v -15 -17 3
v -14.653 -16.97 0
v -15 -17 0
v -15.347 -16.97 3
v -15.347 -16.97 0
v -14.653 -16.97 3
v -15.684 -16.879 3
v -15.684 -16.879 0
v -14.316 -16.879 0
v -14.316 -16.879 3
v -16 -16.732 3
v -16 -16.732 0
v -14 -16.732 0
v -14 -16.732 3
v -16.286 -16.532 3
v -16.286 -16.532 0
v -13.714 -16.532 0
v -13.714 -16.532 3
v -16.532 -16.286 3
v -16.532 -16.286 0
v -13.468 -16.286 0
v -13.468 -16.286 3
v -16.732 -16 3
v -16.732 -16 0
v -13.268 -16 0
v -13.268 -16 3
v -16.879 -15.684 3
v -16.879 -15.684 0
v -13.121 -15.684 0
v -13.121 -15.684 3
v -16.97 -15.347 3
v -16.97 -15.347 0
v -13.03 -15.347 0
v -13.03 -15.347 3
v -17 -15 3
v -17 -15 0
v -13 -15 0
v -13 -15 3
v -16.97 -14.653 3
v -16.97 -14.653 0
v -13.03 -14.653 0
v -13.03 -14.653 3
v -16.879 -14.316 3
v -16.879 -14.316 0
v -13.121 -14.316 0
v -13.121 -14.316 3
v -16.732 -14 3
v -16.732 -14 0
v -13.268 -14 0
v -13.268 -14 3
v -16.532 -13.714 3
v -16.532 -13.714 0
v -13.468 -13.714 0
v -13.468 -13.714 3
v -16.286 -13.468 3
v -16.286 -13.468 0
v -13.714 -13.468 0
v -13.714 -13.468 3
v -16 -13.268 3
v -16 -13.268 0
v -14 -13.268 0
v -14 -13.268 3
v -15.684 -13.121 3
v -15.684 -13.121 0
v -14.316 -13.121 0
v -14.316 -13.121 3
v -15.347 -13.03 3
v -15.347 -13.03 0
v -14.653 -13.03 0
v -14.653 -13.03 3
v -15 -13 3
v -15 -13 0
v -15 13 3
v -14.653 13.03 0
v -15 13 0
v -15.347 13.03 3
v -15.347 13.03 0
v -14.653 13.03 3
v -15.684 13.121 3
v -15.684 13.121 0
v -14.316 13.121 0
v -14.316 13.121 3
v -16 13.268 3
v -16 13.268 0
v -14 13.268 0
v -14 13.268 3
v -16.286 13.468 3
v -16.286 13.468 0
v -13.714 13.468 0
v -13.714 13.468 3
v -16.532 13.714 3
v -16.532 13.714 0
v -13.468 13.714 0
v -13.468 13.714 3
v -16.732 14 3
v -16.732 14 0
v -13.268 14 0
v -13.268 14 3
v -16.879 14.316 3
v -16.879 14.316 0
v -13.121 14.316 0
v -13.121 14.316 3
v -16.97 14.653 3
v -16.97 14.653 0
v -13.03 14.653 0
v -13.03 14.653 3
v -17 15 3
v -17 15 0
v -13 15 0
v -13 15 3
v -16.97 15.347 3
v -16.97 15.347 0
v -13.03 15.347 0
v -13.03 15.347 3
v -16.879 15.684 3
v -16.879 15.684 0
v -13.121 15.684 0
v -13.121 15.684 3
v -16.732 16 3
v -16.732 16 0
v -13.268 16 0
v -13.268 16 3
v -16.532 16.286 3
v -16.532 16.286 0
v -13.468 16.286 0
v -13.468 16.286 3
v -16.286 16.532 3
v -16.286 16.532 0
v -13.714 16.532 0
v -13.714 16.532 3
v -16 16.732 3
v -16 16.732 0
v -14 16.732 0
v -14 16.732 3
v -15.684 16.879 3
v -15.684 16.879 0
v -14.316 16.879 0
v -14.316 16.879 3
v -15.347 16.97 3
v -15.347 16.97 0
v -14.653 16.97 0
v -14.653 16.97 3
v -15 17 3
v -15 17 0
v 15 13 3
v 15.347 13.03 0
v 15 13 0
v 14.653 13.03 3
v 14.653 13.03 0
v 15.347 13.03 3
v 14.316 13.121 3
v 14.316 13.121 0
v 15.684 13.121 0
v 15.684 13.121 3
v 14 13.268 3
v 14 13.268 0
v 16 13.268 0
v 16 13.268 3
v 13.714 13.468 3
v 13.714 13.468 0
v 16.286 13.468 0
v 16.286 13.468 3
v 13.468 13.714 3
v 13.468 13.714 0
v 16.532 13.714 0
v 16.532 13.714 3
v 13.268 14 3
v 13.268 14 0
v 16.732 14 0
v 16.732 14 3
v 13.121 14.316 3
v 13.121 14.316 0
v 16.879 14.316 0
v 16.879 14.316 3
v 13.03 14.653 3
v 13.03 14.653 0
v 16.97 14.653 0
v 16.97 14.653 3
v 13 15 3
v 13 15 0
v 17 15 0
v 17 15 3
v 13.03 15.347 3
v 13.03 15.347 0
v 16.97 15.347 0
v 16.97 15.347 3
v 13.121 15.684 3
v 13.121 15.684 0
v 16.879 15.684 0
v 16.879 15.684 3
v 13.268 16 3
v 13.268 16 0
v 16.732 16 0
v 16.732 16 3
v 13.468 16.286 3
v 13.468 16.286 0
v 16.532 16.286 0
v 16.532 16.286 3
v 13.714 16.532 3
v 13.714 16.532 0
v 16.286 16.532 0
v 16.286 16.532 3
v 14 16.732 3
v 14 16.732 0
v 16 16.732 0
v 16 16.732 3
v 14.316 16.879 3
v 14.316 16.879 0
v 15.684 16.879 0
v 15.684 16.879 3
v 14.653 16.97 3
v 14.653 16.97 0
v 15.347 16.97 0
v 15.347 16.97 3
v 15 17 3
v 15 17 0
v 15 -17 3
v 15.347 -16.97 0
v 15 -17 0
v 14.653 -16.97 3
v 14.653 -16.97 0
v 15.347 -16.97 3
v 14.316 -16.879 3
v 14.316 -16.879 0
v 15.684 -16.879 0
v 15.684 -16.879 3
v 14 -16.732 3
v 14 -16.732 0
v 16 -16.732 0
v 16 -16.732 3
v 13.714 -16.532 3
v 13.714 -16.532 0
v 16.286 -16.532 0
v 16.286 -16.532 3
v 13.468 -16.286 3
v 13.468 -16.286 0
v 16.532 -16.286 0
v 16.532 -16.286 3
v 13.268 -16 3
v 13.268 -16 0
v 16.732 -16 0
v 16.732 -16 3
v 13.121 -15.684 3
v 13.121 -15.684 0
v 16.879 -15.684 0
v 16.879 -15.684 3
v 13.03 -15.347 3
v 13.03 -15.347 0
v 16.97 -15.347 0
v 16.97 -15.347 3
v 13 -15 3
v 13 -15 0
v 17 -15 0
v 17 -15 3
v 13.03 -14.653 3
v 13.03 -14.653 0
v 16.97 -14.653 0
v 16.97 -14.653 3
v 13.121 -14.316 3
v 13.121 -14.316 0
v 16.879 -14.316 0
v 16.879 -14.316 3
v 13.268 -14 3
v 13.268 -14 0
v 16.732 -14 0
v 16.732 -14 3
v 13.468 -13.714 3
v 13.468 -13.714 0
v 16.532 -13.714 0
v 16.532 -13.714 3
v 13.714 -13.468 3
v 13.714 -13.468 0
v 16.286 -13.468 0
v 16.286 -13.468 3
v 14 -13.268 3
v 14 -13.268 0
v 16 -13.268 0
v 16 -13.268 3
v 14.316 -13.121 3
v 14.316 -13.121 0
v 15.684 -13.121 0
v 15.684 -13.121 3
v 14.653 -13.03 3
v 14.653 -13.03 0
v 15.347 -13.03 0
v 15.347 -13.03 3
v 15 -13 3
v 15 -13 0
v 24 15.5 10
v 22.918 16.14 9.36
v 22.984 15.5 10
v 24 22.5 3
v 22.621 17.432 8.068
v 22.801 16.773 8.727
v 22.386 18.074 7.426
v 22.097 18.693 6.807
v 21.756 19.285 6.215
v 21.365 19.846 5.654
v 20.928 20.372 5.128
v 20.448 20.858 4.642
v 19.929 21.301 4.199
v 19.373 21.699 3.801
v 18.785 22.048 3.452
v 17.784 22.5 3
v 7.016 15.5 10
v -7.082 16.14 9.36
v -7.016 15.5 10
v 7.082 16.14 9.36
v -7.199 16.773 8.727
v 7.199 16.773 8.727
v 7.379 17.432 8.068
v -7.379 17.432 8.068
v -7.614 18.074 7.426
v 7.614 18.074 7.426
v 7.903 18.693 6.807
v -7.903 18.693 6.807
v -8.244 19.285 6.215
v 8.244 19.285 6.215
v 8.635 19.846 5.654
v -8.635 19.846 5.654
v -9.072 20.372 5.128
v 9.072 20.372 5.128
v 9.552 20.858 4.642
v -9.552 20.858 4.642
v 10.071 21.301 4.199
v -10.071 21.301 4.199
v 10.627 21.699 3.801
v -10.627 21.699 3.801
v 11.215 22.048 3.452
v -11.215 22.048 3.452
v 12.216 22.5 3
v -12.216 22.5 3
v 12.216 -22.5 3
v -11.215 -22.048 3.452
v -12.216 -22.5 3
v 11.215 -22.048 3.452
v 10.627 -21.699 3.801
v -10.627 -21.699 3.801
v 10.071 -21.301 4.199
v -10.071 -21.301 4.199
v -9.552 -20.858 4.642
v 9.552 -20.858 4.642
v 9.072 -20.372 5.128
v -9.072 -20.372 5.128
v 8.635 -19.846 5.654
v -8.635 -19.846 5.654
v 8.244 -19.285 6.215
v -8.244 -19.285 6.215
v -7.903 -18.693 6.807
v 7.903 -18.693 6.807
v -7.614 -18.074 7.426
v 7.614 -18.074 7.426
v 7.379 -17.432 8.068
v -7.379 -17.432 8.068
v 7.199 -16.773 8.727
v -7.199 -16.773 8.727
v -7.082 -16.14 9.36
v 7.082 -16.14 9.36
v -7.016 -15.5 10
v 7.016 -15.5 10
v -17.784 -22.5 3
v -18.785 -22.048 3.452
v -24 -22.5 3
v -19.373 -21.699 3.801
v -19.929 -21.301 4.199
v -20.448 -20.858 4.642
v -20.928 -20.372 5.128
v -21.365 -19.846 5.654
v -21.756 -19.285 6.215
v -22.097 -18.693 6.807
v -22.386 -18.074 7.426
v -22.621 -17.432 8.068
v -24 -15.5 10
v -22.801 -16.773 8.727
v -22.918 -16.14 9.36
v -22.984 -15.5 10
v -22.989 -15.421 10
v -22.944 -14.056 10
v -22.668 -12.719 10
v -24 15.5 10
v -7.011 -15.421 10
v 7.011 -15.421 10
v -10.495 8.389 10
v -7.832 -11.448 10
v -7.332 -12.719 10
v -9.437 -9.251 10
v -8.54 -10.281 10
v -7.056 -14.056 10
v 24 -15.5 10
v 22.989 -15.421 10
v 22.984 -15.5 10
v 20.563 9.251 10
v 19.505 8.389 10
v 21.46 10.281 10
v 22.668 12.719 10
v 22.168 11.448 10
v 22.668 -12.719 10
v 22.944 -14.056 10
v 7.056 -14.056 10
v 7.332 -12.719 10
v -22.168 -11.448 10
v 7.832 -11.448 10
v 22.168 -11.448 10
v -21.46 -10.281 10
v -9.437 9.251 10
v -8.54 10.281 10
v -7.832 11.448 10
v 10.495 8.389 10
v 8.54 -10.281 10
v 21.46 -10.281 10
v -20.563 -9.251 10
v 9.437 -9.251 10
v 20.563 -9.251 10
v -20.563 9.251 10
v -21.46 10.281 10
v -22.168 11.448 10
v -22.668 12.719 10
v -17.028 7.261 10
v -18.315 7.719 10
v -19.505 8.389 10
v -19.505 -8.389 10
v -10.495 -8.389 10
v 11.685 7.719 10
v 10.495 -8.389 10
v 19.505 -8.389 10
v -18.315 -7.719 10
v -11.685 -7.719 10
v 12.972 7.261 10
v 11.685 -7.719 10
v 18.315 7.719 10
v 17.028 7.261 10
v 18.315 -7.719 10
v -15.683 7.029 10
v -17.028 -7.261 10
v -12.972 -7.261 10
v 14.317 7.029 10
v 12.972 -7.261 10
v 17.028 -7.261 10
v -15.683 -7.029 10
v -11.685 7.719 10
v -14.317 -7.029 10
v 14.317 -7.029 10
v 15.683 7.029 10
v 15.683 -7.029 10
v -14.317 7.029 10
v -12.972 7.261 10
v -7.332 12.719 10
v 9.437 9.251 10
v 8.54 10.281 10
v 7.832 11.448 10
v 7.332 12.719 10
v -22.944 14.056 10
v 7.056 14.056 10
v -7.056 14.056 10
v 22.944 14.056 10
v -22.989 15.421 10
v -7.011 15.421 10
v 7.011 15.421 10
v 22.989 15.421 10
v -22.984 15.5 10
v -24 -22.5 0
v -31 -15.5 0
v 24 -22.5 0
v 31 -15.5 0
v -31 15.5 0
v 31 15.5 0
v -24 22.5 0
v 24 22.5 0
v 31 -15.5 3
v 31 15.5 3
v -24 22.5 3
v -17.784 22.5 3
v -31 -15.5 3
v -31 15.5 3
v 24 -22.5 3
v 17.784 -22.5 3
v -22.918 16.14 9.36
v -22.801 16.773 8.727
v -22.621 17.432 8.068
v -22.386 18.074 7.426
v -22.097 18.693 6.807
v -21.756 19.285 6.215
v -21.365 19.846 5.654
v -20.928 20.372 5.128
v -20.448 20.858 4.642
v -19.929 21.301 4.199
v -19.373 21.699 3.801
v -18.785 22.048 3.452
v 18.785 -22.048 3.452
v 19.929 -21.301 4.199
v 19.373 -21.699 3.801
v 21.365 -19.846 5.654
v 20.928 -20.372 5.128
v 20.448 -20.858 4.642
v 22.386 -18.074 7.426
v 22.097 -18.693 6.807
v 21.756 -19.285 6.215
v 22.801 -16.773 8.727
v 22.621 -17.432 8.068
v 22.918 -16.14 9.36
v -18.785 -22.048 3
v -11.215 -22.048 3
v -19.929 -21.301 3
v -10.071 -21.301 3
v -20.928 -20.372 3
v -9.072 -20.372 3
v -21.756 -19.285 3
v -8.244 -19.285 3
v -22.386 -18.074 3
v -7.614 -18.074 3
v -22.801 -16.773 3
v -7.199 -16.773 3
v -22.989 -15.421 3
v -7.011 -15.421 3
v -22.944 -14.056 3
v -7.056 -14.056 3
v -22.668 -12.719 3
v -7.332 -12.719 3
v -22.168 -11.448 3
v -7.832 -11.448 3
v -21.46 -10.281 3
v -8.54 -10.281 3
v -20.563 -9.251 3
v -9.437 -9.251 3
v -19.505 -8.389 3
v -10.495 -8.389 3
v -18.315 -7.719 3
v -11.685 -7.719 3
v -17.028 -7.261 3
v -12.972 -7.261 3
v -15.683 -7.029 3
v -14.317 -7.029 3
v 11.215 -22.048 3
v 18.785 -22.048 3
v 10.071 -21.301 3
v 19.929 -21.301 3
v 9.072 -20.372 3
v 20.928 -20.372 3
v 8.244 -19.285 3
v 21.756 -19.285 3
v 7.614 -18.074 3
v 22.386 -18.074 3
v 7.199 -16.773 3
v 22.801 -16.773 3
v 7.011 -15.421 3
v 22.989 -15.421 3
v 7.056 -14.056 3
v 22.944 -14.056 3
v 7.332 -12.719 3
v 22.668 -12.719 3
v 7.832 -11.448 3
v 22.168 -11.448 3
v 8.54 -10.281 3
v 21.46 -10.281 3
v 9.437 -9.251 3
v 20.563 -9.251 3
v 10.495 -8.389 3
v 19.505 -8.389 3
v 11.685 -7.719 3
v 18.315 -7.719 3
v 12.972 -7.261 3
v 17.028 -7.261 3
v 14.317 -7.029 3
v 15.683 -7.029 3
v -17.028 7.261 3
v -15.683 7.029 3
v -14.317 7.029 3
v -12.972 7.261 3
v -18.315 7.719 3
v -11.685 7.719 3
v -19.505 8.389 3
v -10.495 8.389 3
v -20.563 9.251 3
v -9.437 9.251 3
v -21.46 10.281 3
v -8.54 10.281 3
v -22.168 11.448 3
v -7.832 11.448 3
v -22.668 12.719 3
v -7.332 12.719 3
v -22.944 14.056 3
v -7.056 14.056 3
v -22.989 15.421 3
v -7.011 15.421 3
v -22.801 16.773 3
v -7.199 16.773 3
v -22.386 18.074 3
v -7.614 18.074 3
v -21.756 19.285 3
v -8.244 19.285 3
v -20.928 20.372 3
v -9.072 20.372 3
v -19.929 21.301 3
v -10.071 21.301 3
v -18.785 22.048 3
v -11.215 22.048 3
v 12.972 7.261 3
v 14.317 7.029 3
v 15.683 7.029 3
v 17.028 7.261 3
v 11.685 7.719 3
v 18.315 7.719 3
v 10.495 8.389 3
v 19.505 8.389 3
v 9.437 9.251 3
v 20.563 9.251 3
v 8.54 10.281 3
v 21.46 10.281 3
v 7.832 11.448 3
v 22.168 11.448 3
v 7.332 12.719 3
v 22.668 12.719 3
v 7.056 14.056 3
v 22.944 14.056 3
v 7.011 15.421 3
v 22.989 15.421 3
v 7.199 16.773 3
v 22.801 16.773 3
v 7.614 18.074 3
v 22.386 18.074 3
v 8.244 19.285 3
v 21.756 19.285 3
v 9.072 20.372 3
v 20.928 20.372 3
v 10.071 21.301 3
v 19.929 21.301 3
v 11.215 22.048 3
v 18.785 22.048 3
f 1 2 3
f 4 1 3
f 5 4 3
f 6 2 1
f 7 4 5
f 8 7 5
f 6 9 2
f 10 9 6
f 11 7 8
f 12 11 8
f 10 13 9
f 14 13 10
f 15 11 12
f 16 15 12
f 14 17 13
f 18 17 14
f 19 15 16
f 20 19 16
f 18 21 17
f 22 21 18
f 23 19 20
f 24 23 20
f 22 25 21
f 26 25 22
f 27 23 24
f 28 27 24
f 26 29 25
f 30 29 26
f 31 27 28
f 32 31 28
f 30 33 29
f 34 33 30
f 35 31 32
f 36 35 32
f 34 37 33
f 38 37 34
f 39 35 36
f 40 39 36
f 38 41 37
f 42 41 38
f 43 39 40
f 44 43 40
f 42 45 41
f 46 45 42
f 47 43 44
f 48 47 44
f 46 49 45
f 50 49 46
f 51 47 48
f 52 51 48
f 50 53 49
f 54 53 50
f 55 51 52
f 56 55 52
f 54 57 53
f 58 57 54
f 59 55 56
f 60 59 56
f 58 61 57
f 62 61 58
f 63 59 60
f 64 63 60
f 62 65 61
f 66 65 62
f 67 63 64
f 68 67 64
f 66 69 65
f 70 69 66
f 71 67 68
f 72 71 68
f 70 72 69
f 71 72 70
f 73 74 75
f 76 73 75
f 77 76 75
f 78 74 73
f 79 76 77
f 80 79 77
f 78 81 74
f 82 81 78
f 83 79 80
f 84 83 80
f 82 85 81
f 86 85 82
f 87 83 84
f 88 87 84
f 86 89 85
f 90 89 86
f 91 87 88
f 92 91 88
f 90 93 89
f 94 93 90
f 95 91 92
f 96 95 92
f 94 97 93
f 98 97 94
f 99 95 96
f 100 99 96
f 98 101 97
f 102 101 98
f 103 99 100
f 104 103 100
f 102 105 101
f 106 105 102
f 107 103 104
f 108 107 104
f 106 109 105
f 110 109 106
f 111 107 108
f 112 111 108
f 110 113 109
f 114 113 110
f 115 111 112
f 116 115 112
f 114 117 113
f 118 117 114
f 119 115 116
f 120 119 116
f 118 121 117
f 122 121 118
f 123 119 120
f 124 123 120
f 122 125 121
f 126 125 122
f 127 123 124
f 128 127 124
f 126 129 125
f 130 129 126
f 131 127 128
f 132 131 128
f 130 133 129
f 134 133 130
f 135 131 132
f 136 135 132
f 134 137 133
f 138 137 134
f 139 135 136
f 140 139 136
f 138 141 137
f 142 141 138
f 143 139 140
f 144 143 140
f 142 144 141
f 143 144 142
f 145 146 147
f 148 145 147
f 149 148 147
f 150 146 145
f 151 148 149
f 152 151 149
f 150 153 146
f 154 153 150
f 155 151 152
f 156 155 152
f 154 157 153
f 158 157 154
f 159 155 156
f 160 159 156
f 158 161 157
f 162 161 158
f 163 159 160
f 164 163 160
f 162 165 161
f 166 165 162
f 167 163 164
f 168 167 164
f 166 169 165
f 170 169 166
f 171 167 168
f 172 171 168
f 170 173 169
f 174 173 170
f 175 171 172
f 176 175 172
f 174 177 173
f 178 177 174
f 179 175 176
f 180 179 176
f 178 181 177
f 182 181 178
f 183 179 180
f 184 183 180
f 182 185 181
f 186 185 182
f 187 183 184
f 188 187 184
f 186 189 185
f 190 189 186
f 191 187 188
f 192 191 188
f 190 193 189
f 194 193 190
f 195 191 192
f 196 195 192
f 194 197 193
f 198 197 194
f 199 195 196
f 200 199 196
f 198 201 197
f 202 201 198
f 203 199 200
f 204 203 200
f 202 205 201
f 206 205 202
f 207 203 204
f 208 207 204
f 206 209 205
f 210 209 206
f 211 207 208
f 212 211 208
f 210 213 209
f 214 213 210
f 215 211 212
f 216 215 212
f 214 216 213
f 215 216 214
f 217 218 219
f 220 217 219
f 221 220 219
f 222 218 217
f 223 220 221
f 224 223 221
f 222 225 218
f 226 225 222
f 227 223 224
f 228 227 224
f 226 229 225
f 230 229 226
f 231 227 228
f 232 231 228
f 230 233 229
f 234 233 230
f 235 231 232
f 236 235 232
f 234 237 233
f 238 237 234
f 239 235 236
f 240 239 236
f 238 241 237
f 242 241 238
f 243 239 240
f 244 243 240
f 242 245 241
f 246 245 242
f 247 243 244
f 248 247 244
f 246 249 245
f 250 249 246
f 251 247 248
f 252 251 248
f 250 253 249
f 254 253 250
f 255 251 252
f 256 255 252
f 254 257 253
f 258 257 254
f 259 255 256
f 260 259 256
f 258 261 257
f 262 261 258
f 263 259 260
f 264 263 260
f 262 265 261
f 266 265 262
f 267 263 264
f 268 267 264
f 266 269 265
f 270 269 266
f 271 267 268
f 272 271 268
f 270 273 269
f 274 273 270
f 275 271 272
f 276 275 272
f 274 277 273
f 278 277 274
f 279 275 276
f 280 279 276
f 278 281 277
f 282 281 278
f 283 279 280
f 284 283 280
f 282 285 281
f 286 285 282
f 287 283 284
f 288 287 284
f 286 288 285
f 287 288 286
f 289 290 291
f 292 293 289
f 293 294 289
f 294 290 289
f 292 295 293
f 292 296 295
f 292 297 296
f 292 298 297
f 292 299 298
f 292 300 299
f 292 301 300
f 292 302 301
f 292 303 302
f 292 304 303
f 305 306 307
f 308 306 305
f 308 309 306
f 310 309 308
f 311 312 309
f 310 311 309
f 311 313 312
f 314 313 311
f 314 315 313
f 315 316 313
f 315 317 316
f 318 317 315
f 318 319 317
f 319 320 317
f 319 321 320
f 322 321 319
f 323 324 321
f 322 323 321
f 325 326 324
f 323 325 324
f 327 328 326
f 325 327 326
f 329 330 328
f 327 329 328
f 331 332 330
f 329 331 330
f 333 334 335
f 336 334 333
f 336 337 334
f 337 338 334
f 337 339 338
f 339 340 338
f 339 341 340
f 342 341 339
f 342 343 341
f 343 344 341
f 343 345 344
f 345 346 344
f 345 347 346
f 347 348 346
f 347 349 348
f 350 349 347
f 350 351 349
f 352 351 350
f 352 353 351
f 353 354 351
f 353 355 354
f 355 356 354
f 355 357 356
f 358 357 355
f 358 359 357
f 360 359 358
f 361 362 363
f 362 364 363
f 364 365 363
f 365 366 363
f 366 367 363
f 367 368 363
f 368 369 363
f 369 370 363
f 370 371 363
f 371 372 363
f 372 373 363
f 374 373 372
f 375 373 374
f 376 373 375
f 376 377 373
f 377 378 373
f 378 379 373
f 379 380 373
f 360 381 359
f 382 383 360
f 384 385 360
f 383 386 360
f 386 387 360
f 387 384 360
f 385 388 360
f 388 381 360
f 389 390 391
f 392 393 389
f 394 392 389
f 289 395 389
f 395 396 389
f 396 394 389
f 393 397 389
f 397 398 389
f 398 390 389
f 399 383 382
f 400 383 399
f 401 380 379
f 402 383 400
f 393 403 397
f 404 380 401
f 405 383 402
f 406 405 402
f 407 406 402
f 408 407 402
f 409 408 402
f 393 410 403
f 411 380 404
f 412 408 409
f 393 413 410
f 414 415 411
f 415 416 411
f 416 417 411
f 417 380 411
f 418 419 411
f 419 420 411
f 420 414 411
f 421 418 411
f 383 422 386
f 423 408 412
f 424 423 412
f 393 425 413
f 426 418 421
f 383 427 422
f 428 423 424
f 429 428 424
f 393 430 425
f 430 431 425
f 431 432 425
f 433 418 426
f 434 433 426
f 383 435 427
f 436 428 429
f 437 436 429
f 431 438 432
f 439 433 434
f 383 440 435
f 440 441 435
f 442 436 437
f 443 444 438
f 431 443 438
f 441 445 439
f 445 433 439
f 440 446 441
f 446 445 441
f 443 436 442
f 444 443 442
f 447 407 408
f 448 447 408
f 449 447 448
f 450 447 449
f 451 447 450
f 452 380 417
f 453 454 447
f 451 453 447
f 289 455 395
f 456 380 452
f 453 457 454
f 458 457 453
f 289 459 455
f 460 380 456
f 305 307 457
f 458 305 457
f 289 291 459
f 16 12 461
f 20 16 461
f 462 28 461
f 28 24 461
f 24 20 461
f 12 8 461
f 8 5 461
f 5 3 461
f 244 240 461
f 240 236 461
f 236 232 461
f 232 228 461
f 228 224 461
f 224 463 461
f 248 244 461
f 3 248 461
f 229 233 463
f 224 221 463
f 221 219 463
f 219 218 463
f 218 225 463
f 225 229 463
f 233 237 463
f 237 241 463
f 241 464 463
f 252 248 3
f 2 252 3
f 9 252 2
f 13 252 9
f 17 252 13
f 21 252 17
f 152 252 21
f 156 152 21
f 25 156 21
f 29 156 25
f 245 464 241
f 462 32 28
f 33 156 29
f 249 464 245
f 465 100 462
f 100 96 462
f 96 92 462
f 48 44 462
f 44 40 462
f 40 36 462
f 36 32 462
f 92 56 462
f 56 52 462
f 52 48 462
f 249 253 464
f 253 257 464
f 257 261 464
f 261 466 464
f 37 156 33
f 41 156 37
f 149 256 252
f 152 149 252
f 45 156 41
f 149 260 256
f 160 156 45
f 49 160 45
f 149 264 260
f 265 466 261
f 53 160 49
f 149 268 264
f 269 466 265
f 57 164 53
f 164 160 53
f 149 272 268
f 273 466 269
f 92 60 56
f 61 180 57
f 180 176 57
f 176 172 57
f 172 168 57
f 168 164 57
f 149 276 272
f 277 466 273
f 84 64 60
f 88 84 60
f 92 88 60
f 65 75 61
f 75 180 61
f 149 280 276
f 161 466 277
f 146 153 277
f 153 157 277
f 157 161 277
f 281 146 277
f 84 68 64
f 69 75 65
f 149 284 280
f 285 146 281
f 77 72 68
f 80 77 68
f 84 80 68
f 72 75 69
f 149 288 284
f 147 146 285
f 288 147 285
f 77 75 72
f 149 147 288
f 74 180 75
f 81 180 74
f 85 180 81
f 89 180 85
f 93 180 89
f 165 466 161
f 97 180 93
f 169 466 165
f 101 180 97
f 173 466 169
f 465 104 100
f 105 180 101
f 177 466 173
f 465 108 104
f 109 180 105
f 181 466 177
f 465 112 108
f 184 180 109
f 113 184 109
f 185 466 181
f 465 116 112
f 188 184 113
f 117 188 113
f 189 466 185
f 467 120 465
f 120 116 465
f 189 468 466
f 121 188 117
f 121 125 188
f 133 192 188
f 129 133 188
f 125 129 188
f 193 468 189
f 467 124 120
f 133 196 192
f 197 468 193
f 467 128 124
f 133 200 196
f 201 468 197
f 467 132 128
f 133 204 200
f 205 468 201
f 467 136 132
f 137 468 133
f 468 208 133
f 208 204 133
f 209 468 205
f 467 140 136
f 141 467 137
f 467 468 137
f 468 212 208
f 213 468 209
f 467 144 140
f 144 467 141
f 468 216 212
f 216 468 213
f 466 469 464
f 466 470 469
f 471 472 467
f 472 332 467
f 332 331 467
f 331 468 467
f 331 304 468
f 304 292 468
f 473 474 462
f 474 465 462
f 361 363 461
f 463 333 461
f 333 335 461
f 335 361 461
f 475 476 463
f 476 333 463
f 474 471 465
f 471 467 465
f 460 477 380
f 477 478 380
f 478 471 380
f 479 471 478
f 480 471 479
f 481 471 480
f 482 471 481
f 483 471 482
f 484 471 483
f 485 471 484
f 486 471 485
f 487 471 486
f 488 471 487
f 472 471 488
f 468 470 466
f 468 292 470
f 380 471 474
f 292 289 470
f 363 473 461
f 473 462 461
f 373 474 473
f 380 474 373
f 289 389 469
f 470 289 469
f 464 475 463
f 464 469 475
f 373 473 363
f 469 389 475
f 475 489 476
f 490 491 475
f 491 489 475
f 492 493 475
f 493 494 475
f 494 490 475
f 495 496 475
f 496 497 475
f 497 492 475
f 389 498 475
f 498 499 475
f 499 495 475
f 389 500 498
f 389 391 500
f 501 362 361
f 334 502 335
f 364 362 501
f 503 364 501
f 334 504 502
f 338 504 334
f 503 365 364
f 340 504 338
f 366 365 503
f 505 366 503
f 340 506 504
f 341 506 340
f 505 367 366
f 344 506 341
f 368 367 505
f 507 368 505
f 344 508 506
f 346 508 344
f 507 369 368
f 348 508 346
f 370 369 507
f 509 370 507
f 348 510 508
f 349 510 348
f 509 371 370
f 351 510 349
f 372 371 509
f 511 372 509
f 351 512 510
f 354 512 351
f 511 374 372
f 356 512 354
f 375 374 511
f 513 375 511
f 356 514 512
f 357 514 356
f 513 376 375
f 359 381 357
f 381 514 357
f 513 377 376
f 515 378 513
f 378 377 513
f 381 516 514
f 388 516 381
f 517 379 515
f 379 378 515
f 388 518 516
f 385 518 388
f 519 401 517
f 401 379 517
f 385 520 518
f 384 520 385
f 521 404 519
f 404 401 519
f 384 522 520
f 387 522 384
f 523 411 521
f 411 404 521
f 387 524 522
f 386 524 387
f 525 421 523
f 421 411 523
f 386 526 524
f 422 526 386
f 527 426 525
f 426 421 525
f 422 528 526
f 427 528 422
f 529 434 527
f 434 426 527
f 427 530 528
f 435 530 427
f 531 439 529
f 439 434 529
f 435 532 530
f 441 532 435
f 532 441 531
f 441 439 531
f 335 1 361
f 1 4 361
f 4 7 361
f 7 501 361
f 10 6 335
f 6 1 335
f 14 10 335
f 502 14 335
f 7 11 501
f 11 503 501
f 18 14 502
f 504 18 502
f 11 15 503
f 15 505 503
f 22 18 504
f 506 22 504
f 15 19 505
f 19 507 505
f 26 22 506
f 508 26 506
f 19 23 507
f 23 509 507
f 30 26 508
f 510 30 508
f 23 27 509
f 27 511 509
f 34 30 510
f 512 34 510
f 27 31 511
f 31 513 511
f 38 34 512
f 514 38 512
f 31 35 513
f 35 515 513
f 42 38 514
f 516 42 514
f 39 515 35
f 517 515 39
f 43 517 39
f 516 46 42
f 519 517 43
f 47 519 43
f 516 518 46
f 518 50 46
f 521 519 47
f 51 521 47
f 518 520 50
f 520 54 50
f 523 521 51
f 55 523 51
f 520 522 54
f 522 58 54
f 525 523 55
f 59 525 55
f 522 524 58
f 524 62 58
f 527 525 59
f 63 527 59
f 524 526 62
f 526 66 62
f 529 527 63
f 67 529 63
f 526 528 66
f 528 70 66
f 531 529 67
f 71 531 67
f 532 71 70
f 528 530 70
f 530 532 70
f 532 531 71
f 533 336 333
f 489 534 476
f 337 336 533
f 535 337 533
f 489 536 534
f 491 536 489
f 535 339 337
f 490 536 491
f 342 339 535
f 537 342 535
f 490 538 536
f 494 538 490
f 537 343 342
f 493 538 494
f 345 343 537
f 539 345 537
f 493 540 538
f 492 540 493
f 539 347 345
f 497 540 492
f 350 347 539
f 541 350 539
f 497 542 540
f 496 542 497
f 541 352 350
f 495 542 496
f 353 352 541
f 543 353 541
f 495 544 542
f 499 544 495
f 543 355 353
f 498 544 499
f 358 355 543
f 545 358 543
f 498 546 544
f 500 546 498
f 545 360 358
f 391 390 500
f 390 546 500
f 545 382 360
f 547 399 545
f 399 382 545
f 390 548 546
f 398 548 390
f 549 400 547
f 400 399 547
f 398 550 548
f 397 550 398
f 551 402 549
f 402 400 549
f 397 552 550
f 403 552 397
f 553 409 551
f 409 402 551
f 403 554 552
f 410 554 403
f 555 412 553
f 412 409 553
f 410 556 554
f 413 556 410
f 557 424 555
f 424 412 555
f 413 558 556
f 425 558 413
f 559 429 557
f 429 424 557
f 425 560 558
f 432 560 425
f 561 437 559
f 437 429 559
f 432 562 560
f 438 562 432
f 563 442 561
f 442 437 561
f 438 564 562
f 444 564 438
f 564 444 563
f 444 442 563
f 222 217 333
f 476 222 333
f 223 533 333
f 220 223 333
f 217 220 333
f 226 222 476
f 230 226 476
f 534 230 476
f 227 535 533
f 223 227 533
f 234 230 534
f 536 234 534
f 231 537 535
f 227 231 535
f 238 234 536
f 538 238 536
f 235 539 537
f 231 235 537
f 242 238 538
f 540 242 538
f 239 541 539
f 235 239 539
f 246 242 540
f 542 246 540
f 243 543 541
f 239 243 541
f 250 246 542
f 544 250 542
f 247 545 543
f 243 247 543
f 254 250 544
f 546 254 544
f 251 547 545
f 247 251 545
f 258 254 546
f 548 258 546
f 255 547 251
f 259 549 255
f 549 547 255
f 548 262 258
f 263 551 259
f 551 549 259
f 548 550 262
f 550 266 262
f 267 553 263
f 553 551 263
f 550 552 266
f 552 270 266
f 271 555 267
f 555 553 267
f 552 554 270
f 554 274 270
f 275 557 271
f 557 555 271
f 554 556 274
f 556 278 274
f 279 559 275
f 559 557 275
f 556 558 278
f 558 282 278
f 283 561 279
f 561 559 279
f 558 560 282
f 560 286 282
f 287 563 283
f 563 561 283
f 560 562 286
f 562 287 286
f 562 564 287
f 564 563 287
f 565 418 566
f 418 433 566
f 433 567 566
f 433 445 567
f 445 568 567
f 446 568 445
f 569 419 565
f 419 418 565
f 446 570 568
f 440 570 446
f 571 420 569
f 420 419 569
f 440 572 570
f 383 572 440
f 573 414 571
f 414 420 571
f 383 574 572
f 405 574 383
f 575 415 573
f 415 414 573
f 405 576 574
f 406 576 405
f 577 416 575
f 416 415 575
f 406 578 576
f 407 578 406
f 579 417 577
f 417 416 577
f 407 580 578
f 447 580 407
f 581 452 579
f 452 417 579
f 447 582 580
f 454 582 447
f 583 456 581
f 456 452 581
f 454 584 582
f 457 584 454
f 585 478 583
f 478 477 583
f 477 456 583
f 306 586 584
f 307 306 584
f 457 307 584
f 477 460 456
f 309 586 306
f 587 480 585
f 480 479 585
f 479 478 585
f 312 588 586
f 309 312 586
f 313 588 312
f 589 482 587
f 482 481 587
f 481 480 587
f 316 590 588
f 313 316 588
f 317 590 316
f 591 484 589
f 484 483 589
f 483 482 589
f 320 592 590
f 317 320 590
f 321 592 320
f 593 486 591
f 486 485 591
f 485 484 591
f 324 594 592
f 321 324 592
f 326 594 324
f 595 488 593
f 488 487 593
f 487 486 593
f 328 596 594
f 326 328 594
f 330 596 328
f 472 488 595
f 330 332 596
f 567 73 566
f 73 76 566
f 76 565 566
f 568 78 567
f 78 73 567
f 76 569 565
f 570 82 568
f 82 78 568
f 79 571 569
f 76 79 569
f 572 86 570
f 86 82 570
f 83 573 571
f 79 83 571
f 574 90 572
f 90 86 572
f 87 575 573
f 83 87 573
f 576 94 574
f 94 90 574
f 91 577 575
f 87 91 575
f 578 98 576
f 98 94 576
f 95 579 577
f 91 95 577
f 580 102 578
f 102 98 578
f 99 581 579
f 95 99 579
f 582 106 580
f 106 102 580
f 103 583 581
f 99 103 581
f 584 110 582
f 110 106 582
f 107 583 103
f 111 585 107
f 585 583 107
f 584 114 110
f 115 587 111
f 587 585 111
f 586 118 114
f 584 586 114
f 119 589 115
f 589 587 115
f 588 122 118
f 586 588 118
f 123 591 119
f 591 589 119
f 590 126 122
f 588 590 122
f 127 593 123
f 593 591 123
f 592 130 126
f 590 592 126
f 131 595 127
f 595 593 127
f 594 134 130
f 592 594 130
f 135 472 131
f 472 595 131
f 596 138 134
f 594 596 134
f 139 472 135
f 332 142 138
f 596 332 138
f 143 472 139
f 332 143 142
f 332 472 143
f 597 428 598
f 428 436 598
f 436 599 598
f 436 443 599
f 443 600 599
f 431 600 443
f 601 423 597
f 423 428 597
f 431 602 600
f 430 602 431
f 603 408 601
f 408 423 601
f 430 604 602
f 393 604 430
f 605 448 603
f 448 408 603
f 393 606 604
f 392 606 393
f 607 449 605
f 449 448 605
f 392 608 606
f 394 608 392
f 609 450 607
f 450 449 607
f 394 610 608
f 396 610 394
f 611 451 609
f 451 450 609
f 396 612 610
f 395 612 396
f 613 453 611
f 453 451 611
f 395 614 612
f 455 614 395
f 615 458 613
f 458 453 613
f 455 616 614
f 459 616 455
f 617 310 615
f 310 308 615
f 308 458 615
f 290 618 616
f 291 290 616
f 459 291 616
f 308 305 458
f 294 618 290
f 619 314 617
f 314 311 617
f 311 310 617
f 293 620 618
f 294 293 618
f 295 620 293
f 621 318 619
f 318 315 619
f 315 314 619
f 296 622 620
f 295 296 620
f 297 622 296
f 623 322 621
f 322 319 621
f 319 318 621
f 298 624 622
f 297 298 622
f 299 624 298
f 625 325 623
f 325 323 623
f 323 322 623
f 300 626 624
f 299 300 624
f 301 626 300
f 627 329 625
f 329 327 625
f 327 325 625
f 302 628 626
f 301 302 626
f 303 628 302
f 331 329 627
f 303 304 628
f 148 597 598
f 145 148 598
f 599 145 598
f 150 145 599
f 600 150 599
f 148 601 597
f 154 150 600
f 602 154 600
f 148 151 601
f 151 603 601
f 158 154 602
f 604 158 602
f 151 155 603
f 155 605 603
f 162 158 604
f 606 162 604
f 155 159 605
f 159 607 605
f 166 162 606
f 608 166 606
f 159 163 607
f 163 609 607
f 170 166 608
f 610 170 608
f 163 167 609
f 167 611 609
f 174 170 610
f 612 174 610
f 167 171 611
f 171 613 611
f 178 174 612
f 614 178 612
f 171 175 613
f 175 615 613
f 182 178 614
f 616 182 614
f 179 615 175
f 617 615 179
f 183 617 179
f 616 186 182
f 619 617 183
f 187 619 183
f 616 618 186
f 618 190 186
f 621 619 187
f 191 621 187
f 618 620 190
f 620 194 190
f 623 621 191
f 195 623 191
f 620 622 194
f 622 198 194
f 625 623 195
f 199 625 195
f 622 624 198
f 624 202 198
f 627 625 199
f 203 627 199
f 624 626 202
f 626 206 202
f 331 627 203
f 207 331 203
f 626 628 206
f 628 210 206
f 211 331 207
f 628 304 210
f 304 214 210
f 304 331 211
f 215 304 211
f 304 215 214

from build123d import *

# Parameters (mm, degrees)
SKETCH1_W           = 62
SKETCH1_H           = 45
SKETCH1_R           = 2
BOSS_EXTRUDE1_DEPTH = 10
SKETCH2_R           = 8
CUT_EXTRUDE1_DEPTH  = 7


with BuildPart() as part:
    # Sketch1 → Boss-Extrude1 (new body)
    with BuildSketch(Plane.XY):
        Rectangle(SKETCH1_W, SKETCH1_H)
        with Locations((-15, -15)):
            Circle(SKETCH1_R, mode=Mode.SUBTRACT)
        with Locations((-15, 15)):
            Circle(SKETCH1_R, mode=Mode.SUBTRACT)
        with Locations((15, 15)):
            Circle(SKETCH1_R, mode=Mode.SUBTRACT)
        with Locations((15, -15)):
            Circle(SKETCH1_R, mode=Mode.SUBTRACT)
    extrude(amount=BOSS_EXTRUDE1_DEPTH)

    # Chamfer1
    # the kernel refuses this chamfer: 7 mm, written as the material it takes off along each edge
    with BuildSketch(Plane(origin=(-26.333333333, 17.833333333, 5.333333333), x_dir=(0, 0.7071067811865476, -0.7071067811865476), z_dir=(-0.5773502691896257, 0.5773502691896257, 0.5773502691896257)), Plane(origin=(-26.333333333, -17.833333333, 5.333333333), x_dir=(0, 0.7071067811865476, 0.7071067811865476), z_dir=(-0.5773502691896257, -0.5773502691896257, 0.5773502691896257)), Plane(origin=(26.333333333, 17.833333333, 5.333333333), x_dir=(-0.7071067811865476, 0.7071067811865476, 0), z_dir=(0.5773502691896257, 0.5773502691896257, 0.5773502691896257))) as chamfer1_piece_1:
        Polygon((-4.949747468, -2.857738033), (4.949747468, -2.857738033), (0, 5.715476066), align=None)
    extrude(amount=8.891194146, mode=Mode.SUBTRACT)
    with BuildSketch(Plane(origin=(26.333333333, -17.833333333, 5.333333333), x_dir=(0, 0.7071067811865476, 0.7071067811865476), z_dir=(0.5773502691896257, -0.5773502691896257, 0.5773502691896257))) as chamfer1_piece_2:
        Polygon((-4.949747468, 2.857738033), (4.949747468, 2.857738033), (0, -5.715476066), align=None)
    extrude(amount=8.891194146, mode=Mode.SUBTRACT)
    with BuildSketch(Plane(origin=(-31, 40.501780916, 10), x_dir=(-0.02749587661058661, 0, -0.9996219169112968), z_dir=(0, -1, 0)), Plane(origin=(31, -40.501780916, 10), x_dir=(0.02749587661058661, 0, -0.9996219169112968), z_dir=(0, 1, 0))) as chamfer1_piece_3:
        with BuildLine():
            Line((7.200712366, 0), (-0.395830084, 7.189824555))
            Line((-0.395830084, 7.189824555), (-0.535777153, 7.185975132))
            ThreePointArc((-0.535777153, 7.185975132), (-0.238904589, 3.593784808), (-0.139947068, -0.003849423))
            Line((-0.139947068, -0.003849423), (0.003849423, -0.139947068))
            ThreePointArc((0.003849423, -0.139947068), (3.601483653, -0.040989547), (7.204561789, -0.139947068))
            Line((7.204561789, -0.139947068), (7.200712366, 0))
        make_face()
    extrude(amount=81.003561832, mode=Mode.SUBTRACT)
    with BuildSketch(Plane(origin=(-49.001780916, -22.5, 10), x_dir=(0, -0.02749587661058661, -0.9996219169112968), z_dir=(1, 0, 0)), Plane(origin=(49.001780916, 22.5, 10), x_dir=(0, 0.02749587661058661, -0.9996219169112968), z_dir=(-1, 0, 0))) as chamfer1_piece_4:
        with BuildLine():
            Line((7.200712366, 0), (-0.395830084, 7.189824555))
            Line((-0.395830084, 7.189824555), (-0.535777153, 7.185975132))
            ThreePointArc((-0.535777153, 7.185975132), (-0.238904589, 3.593784808), (-0.139947068, -0.003849423))
            Line((-0.139947068, -0.003849423), (0.003849423, -0.139947068))
            ThreePointArc((0.003849423, -0.139947068), (3.601483653, -0.040989547), (7.204561789, -0.139947068))
            Line((7.204561789, -0.139947068), (7.200712366, 0))
        make_face()
    extrude(amount=98.003561832, mode=Mode.SUBTRACT)
    with BuildSketch(Plane(origin=(31, -22.5, -18.001780916), x_dir=(-0.9996219169112968, -0.027495876610586605, 0), z_dir=(0, 0, 1)), Plane(origin=(-31, 22.5, -18.001780916), x_dir=(0.9996219169112968, 0.027495876610586605, 0), z_dir=(0, 0, 1)), Plane(origin=(31, 22.5, -18.001780916), x_dir=(0.02749587661058661, -0.9996219169112968, 0), z_dir=(0, 0, 1))) as chamfer1_piece_5:
        with BuildLine():
            Line((7.200712366, 0), (-0.395830084, -7.189824555))
            Line((-0.395830084, -7.189824555), (-0.535777153, -7.185975132))
            ThreePointArc((-0.535777153, -7.185975132), (-0.238904589, -3.593784808), (-0.139947068, 0.003849423))
            Line((-0.139947068, 0.003849423), (0.003849423, 0.139947068))
            ThreePointArc((0.003849423, 0.139947068), (3.601483653, 0.040989547), (7.204561789, 0.139947068))
            Line((7.204561789, 0.139947068), (7.200712366, 0))
        make_face()
    extrude(amount=46.003561832, mode=Mode.SUBTRACT)
    with BuildSketch(Plane(origin=(-31, -22.5, -18.001780916), x_dir=(0.9996219169112968, -0.027495876610586605, 0), z_dir=(0, 0, 1))) as chamfer1_piece_6:
        with BuildLine():
            Line((7.200712366, 0), (-0.395830084, 7.189824555))
            Line((-0.395830084, 7.189824555), (-0.535777153, 7.185975132))
            ThreePointArc((-0.535777153, 7.185975132), (-0.238904589, 3.593784808), (-0.139947068, -0.003849423))
            Line((-0.139947068, -0.003849423), (0.003849423, -0.139947068))
            ThreePointArc((0.003849423, -0.139947068), (3.601483653, -0.040989547), (7.204561789, -0.139947068))
            Line((7.204561789, -0.139947068), (7.200712366, 0))
        make_face()
    extrude(amount=46.003561832, mode=Mode.SUBTRACT)

    # Sketch2 → Cut-Extrude1 (cut)
    with BuildSketch(Plane.XY.offset(10)):
        with Locations((-15, 15)):
            Circle(SKETCH2_R)
        with Locations((-15, -15)):
            Circle(SKETCH2_R)
        with Locations((15, -15)):
            Circle(SKETCH2_R)
        with Locations((15, 15)):
            Circle(SKETCH2_R)
    extrude(amount=-CUT_EXTRUDE1_DEPTH, mode=Mode.SUBTRACT)


solid = part.part
